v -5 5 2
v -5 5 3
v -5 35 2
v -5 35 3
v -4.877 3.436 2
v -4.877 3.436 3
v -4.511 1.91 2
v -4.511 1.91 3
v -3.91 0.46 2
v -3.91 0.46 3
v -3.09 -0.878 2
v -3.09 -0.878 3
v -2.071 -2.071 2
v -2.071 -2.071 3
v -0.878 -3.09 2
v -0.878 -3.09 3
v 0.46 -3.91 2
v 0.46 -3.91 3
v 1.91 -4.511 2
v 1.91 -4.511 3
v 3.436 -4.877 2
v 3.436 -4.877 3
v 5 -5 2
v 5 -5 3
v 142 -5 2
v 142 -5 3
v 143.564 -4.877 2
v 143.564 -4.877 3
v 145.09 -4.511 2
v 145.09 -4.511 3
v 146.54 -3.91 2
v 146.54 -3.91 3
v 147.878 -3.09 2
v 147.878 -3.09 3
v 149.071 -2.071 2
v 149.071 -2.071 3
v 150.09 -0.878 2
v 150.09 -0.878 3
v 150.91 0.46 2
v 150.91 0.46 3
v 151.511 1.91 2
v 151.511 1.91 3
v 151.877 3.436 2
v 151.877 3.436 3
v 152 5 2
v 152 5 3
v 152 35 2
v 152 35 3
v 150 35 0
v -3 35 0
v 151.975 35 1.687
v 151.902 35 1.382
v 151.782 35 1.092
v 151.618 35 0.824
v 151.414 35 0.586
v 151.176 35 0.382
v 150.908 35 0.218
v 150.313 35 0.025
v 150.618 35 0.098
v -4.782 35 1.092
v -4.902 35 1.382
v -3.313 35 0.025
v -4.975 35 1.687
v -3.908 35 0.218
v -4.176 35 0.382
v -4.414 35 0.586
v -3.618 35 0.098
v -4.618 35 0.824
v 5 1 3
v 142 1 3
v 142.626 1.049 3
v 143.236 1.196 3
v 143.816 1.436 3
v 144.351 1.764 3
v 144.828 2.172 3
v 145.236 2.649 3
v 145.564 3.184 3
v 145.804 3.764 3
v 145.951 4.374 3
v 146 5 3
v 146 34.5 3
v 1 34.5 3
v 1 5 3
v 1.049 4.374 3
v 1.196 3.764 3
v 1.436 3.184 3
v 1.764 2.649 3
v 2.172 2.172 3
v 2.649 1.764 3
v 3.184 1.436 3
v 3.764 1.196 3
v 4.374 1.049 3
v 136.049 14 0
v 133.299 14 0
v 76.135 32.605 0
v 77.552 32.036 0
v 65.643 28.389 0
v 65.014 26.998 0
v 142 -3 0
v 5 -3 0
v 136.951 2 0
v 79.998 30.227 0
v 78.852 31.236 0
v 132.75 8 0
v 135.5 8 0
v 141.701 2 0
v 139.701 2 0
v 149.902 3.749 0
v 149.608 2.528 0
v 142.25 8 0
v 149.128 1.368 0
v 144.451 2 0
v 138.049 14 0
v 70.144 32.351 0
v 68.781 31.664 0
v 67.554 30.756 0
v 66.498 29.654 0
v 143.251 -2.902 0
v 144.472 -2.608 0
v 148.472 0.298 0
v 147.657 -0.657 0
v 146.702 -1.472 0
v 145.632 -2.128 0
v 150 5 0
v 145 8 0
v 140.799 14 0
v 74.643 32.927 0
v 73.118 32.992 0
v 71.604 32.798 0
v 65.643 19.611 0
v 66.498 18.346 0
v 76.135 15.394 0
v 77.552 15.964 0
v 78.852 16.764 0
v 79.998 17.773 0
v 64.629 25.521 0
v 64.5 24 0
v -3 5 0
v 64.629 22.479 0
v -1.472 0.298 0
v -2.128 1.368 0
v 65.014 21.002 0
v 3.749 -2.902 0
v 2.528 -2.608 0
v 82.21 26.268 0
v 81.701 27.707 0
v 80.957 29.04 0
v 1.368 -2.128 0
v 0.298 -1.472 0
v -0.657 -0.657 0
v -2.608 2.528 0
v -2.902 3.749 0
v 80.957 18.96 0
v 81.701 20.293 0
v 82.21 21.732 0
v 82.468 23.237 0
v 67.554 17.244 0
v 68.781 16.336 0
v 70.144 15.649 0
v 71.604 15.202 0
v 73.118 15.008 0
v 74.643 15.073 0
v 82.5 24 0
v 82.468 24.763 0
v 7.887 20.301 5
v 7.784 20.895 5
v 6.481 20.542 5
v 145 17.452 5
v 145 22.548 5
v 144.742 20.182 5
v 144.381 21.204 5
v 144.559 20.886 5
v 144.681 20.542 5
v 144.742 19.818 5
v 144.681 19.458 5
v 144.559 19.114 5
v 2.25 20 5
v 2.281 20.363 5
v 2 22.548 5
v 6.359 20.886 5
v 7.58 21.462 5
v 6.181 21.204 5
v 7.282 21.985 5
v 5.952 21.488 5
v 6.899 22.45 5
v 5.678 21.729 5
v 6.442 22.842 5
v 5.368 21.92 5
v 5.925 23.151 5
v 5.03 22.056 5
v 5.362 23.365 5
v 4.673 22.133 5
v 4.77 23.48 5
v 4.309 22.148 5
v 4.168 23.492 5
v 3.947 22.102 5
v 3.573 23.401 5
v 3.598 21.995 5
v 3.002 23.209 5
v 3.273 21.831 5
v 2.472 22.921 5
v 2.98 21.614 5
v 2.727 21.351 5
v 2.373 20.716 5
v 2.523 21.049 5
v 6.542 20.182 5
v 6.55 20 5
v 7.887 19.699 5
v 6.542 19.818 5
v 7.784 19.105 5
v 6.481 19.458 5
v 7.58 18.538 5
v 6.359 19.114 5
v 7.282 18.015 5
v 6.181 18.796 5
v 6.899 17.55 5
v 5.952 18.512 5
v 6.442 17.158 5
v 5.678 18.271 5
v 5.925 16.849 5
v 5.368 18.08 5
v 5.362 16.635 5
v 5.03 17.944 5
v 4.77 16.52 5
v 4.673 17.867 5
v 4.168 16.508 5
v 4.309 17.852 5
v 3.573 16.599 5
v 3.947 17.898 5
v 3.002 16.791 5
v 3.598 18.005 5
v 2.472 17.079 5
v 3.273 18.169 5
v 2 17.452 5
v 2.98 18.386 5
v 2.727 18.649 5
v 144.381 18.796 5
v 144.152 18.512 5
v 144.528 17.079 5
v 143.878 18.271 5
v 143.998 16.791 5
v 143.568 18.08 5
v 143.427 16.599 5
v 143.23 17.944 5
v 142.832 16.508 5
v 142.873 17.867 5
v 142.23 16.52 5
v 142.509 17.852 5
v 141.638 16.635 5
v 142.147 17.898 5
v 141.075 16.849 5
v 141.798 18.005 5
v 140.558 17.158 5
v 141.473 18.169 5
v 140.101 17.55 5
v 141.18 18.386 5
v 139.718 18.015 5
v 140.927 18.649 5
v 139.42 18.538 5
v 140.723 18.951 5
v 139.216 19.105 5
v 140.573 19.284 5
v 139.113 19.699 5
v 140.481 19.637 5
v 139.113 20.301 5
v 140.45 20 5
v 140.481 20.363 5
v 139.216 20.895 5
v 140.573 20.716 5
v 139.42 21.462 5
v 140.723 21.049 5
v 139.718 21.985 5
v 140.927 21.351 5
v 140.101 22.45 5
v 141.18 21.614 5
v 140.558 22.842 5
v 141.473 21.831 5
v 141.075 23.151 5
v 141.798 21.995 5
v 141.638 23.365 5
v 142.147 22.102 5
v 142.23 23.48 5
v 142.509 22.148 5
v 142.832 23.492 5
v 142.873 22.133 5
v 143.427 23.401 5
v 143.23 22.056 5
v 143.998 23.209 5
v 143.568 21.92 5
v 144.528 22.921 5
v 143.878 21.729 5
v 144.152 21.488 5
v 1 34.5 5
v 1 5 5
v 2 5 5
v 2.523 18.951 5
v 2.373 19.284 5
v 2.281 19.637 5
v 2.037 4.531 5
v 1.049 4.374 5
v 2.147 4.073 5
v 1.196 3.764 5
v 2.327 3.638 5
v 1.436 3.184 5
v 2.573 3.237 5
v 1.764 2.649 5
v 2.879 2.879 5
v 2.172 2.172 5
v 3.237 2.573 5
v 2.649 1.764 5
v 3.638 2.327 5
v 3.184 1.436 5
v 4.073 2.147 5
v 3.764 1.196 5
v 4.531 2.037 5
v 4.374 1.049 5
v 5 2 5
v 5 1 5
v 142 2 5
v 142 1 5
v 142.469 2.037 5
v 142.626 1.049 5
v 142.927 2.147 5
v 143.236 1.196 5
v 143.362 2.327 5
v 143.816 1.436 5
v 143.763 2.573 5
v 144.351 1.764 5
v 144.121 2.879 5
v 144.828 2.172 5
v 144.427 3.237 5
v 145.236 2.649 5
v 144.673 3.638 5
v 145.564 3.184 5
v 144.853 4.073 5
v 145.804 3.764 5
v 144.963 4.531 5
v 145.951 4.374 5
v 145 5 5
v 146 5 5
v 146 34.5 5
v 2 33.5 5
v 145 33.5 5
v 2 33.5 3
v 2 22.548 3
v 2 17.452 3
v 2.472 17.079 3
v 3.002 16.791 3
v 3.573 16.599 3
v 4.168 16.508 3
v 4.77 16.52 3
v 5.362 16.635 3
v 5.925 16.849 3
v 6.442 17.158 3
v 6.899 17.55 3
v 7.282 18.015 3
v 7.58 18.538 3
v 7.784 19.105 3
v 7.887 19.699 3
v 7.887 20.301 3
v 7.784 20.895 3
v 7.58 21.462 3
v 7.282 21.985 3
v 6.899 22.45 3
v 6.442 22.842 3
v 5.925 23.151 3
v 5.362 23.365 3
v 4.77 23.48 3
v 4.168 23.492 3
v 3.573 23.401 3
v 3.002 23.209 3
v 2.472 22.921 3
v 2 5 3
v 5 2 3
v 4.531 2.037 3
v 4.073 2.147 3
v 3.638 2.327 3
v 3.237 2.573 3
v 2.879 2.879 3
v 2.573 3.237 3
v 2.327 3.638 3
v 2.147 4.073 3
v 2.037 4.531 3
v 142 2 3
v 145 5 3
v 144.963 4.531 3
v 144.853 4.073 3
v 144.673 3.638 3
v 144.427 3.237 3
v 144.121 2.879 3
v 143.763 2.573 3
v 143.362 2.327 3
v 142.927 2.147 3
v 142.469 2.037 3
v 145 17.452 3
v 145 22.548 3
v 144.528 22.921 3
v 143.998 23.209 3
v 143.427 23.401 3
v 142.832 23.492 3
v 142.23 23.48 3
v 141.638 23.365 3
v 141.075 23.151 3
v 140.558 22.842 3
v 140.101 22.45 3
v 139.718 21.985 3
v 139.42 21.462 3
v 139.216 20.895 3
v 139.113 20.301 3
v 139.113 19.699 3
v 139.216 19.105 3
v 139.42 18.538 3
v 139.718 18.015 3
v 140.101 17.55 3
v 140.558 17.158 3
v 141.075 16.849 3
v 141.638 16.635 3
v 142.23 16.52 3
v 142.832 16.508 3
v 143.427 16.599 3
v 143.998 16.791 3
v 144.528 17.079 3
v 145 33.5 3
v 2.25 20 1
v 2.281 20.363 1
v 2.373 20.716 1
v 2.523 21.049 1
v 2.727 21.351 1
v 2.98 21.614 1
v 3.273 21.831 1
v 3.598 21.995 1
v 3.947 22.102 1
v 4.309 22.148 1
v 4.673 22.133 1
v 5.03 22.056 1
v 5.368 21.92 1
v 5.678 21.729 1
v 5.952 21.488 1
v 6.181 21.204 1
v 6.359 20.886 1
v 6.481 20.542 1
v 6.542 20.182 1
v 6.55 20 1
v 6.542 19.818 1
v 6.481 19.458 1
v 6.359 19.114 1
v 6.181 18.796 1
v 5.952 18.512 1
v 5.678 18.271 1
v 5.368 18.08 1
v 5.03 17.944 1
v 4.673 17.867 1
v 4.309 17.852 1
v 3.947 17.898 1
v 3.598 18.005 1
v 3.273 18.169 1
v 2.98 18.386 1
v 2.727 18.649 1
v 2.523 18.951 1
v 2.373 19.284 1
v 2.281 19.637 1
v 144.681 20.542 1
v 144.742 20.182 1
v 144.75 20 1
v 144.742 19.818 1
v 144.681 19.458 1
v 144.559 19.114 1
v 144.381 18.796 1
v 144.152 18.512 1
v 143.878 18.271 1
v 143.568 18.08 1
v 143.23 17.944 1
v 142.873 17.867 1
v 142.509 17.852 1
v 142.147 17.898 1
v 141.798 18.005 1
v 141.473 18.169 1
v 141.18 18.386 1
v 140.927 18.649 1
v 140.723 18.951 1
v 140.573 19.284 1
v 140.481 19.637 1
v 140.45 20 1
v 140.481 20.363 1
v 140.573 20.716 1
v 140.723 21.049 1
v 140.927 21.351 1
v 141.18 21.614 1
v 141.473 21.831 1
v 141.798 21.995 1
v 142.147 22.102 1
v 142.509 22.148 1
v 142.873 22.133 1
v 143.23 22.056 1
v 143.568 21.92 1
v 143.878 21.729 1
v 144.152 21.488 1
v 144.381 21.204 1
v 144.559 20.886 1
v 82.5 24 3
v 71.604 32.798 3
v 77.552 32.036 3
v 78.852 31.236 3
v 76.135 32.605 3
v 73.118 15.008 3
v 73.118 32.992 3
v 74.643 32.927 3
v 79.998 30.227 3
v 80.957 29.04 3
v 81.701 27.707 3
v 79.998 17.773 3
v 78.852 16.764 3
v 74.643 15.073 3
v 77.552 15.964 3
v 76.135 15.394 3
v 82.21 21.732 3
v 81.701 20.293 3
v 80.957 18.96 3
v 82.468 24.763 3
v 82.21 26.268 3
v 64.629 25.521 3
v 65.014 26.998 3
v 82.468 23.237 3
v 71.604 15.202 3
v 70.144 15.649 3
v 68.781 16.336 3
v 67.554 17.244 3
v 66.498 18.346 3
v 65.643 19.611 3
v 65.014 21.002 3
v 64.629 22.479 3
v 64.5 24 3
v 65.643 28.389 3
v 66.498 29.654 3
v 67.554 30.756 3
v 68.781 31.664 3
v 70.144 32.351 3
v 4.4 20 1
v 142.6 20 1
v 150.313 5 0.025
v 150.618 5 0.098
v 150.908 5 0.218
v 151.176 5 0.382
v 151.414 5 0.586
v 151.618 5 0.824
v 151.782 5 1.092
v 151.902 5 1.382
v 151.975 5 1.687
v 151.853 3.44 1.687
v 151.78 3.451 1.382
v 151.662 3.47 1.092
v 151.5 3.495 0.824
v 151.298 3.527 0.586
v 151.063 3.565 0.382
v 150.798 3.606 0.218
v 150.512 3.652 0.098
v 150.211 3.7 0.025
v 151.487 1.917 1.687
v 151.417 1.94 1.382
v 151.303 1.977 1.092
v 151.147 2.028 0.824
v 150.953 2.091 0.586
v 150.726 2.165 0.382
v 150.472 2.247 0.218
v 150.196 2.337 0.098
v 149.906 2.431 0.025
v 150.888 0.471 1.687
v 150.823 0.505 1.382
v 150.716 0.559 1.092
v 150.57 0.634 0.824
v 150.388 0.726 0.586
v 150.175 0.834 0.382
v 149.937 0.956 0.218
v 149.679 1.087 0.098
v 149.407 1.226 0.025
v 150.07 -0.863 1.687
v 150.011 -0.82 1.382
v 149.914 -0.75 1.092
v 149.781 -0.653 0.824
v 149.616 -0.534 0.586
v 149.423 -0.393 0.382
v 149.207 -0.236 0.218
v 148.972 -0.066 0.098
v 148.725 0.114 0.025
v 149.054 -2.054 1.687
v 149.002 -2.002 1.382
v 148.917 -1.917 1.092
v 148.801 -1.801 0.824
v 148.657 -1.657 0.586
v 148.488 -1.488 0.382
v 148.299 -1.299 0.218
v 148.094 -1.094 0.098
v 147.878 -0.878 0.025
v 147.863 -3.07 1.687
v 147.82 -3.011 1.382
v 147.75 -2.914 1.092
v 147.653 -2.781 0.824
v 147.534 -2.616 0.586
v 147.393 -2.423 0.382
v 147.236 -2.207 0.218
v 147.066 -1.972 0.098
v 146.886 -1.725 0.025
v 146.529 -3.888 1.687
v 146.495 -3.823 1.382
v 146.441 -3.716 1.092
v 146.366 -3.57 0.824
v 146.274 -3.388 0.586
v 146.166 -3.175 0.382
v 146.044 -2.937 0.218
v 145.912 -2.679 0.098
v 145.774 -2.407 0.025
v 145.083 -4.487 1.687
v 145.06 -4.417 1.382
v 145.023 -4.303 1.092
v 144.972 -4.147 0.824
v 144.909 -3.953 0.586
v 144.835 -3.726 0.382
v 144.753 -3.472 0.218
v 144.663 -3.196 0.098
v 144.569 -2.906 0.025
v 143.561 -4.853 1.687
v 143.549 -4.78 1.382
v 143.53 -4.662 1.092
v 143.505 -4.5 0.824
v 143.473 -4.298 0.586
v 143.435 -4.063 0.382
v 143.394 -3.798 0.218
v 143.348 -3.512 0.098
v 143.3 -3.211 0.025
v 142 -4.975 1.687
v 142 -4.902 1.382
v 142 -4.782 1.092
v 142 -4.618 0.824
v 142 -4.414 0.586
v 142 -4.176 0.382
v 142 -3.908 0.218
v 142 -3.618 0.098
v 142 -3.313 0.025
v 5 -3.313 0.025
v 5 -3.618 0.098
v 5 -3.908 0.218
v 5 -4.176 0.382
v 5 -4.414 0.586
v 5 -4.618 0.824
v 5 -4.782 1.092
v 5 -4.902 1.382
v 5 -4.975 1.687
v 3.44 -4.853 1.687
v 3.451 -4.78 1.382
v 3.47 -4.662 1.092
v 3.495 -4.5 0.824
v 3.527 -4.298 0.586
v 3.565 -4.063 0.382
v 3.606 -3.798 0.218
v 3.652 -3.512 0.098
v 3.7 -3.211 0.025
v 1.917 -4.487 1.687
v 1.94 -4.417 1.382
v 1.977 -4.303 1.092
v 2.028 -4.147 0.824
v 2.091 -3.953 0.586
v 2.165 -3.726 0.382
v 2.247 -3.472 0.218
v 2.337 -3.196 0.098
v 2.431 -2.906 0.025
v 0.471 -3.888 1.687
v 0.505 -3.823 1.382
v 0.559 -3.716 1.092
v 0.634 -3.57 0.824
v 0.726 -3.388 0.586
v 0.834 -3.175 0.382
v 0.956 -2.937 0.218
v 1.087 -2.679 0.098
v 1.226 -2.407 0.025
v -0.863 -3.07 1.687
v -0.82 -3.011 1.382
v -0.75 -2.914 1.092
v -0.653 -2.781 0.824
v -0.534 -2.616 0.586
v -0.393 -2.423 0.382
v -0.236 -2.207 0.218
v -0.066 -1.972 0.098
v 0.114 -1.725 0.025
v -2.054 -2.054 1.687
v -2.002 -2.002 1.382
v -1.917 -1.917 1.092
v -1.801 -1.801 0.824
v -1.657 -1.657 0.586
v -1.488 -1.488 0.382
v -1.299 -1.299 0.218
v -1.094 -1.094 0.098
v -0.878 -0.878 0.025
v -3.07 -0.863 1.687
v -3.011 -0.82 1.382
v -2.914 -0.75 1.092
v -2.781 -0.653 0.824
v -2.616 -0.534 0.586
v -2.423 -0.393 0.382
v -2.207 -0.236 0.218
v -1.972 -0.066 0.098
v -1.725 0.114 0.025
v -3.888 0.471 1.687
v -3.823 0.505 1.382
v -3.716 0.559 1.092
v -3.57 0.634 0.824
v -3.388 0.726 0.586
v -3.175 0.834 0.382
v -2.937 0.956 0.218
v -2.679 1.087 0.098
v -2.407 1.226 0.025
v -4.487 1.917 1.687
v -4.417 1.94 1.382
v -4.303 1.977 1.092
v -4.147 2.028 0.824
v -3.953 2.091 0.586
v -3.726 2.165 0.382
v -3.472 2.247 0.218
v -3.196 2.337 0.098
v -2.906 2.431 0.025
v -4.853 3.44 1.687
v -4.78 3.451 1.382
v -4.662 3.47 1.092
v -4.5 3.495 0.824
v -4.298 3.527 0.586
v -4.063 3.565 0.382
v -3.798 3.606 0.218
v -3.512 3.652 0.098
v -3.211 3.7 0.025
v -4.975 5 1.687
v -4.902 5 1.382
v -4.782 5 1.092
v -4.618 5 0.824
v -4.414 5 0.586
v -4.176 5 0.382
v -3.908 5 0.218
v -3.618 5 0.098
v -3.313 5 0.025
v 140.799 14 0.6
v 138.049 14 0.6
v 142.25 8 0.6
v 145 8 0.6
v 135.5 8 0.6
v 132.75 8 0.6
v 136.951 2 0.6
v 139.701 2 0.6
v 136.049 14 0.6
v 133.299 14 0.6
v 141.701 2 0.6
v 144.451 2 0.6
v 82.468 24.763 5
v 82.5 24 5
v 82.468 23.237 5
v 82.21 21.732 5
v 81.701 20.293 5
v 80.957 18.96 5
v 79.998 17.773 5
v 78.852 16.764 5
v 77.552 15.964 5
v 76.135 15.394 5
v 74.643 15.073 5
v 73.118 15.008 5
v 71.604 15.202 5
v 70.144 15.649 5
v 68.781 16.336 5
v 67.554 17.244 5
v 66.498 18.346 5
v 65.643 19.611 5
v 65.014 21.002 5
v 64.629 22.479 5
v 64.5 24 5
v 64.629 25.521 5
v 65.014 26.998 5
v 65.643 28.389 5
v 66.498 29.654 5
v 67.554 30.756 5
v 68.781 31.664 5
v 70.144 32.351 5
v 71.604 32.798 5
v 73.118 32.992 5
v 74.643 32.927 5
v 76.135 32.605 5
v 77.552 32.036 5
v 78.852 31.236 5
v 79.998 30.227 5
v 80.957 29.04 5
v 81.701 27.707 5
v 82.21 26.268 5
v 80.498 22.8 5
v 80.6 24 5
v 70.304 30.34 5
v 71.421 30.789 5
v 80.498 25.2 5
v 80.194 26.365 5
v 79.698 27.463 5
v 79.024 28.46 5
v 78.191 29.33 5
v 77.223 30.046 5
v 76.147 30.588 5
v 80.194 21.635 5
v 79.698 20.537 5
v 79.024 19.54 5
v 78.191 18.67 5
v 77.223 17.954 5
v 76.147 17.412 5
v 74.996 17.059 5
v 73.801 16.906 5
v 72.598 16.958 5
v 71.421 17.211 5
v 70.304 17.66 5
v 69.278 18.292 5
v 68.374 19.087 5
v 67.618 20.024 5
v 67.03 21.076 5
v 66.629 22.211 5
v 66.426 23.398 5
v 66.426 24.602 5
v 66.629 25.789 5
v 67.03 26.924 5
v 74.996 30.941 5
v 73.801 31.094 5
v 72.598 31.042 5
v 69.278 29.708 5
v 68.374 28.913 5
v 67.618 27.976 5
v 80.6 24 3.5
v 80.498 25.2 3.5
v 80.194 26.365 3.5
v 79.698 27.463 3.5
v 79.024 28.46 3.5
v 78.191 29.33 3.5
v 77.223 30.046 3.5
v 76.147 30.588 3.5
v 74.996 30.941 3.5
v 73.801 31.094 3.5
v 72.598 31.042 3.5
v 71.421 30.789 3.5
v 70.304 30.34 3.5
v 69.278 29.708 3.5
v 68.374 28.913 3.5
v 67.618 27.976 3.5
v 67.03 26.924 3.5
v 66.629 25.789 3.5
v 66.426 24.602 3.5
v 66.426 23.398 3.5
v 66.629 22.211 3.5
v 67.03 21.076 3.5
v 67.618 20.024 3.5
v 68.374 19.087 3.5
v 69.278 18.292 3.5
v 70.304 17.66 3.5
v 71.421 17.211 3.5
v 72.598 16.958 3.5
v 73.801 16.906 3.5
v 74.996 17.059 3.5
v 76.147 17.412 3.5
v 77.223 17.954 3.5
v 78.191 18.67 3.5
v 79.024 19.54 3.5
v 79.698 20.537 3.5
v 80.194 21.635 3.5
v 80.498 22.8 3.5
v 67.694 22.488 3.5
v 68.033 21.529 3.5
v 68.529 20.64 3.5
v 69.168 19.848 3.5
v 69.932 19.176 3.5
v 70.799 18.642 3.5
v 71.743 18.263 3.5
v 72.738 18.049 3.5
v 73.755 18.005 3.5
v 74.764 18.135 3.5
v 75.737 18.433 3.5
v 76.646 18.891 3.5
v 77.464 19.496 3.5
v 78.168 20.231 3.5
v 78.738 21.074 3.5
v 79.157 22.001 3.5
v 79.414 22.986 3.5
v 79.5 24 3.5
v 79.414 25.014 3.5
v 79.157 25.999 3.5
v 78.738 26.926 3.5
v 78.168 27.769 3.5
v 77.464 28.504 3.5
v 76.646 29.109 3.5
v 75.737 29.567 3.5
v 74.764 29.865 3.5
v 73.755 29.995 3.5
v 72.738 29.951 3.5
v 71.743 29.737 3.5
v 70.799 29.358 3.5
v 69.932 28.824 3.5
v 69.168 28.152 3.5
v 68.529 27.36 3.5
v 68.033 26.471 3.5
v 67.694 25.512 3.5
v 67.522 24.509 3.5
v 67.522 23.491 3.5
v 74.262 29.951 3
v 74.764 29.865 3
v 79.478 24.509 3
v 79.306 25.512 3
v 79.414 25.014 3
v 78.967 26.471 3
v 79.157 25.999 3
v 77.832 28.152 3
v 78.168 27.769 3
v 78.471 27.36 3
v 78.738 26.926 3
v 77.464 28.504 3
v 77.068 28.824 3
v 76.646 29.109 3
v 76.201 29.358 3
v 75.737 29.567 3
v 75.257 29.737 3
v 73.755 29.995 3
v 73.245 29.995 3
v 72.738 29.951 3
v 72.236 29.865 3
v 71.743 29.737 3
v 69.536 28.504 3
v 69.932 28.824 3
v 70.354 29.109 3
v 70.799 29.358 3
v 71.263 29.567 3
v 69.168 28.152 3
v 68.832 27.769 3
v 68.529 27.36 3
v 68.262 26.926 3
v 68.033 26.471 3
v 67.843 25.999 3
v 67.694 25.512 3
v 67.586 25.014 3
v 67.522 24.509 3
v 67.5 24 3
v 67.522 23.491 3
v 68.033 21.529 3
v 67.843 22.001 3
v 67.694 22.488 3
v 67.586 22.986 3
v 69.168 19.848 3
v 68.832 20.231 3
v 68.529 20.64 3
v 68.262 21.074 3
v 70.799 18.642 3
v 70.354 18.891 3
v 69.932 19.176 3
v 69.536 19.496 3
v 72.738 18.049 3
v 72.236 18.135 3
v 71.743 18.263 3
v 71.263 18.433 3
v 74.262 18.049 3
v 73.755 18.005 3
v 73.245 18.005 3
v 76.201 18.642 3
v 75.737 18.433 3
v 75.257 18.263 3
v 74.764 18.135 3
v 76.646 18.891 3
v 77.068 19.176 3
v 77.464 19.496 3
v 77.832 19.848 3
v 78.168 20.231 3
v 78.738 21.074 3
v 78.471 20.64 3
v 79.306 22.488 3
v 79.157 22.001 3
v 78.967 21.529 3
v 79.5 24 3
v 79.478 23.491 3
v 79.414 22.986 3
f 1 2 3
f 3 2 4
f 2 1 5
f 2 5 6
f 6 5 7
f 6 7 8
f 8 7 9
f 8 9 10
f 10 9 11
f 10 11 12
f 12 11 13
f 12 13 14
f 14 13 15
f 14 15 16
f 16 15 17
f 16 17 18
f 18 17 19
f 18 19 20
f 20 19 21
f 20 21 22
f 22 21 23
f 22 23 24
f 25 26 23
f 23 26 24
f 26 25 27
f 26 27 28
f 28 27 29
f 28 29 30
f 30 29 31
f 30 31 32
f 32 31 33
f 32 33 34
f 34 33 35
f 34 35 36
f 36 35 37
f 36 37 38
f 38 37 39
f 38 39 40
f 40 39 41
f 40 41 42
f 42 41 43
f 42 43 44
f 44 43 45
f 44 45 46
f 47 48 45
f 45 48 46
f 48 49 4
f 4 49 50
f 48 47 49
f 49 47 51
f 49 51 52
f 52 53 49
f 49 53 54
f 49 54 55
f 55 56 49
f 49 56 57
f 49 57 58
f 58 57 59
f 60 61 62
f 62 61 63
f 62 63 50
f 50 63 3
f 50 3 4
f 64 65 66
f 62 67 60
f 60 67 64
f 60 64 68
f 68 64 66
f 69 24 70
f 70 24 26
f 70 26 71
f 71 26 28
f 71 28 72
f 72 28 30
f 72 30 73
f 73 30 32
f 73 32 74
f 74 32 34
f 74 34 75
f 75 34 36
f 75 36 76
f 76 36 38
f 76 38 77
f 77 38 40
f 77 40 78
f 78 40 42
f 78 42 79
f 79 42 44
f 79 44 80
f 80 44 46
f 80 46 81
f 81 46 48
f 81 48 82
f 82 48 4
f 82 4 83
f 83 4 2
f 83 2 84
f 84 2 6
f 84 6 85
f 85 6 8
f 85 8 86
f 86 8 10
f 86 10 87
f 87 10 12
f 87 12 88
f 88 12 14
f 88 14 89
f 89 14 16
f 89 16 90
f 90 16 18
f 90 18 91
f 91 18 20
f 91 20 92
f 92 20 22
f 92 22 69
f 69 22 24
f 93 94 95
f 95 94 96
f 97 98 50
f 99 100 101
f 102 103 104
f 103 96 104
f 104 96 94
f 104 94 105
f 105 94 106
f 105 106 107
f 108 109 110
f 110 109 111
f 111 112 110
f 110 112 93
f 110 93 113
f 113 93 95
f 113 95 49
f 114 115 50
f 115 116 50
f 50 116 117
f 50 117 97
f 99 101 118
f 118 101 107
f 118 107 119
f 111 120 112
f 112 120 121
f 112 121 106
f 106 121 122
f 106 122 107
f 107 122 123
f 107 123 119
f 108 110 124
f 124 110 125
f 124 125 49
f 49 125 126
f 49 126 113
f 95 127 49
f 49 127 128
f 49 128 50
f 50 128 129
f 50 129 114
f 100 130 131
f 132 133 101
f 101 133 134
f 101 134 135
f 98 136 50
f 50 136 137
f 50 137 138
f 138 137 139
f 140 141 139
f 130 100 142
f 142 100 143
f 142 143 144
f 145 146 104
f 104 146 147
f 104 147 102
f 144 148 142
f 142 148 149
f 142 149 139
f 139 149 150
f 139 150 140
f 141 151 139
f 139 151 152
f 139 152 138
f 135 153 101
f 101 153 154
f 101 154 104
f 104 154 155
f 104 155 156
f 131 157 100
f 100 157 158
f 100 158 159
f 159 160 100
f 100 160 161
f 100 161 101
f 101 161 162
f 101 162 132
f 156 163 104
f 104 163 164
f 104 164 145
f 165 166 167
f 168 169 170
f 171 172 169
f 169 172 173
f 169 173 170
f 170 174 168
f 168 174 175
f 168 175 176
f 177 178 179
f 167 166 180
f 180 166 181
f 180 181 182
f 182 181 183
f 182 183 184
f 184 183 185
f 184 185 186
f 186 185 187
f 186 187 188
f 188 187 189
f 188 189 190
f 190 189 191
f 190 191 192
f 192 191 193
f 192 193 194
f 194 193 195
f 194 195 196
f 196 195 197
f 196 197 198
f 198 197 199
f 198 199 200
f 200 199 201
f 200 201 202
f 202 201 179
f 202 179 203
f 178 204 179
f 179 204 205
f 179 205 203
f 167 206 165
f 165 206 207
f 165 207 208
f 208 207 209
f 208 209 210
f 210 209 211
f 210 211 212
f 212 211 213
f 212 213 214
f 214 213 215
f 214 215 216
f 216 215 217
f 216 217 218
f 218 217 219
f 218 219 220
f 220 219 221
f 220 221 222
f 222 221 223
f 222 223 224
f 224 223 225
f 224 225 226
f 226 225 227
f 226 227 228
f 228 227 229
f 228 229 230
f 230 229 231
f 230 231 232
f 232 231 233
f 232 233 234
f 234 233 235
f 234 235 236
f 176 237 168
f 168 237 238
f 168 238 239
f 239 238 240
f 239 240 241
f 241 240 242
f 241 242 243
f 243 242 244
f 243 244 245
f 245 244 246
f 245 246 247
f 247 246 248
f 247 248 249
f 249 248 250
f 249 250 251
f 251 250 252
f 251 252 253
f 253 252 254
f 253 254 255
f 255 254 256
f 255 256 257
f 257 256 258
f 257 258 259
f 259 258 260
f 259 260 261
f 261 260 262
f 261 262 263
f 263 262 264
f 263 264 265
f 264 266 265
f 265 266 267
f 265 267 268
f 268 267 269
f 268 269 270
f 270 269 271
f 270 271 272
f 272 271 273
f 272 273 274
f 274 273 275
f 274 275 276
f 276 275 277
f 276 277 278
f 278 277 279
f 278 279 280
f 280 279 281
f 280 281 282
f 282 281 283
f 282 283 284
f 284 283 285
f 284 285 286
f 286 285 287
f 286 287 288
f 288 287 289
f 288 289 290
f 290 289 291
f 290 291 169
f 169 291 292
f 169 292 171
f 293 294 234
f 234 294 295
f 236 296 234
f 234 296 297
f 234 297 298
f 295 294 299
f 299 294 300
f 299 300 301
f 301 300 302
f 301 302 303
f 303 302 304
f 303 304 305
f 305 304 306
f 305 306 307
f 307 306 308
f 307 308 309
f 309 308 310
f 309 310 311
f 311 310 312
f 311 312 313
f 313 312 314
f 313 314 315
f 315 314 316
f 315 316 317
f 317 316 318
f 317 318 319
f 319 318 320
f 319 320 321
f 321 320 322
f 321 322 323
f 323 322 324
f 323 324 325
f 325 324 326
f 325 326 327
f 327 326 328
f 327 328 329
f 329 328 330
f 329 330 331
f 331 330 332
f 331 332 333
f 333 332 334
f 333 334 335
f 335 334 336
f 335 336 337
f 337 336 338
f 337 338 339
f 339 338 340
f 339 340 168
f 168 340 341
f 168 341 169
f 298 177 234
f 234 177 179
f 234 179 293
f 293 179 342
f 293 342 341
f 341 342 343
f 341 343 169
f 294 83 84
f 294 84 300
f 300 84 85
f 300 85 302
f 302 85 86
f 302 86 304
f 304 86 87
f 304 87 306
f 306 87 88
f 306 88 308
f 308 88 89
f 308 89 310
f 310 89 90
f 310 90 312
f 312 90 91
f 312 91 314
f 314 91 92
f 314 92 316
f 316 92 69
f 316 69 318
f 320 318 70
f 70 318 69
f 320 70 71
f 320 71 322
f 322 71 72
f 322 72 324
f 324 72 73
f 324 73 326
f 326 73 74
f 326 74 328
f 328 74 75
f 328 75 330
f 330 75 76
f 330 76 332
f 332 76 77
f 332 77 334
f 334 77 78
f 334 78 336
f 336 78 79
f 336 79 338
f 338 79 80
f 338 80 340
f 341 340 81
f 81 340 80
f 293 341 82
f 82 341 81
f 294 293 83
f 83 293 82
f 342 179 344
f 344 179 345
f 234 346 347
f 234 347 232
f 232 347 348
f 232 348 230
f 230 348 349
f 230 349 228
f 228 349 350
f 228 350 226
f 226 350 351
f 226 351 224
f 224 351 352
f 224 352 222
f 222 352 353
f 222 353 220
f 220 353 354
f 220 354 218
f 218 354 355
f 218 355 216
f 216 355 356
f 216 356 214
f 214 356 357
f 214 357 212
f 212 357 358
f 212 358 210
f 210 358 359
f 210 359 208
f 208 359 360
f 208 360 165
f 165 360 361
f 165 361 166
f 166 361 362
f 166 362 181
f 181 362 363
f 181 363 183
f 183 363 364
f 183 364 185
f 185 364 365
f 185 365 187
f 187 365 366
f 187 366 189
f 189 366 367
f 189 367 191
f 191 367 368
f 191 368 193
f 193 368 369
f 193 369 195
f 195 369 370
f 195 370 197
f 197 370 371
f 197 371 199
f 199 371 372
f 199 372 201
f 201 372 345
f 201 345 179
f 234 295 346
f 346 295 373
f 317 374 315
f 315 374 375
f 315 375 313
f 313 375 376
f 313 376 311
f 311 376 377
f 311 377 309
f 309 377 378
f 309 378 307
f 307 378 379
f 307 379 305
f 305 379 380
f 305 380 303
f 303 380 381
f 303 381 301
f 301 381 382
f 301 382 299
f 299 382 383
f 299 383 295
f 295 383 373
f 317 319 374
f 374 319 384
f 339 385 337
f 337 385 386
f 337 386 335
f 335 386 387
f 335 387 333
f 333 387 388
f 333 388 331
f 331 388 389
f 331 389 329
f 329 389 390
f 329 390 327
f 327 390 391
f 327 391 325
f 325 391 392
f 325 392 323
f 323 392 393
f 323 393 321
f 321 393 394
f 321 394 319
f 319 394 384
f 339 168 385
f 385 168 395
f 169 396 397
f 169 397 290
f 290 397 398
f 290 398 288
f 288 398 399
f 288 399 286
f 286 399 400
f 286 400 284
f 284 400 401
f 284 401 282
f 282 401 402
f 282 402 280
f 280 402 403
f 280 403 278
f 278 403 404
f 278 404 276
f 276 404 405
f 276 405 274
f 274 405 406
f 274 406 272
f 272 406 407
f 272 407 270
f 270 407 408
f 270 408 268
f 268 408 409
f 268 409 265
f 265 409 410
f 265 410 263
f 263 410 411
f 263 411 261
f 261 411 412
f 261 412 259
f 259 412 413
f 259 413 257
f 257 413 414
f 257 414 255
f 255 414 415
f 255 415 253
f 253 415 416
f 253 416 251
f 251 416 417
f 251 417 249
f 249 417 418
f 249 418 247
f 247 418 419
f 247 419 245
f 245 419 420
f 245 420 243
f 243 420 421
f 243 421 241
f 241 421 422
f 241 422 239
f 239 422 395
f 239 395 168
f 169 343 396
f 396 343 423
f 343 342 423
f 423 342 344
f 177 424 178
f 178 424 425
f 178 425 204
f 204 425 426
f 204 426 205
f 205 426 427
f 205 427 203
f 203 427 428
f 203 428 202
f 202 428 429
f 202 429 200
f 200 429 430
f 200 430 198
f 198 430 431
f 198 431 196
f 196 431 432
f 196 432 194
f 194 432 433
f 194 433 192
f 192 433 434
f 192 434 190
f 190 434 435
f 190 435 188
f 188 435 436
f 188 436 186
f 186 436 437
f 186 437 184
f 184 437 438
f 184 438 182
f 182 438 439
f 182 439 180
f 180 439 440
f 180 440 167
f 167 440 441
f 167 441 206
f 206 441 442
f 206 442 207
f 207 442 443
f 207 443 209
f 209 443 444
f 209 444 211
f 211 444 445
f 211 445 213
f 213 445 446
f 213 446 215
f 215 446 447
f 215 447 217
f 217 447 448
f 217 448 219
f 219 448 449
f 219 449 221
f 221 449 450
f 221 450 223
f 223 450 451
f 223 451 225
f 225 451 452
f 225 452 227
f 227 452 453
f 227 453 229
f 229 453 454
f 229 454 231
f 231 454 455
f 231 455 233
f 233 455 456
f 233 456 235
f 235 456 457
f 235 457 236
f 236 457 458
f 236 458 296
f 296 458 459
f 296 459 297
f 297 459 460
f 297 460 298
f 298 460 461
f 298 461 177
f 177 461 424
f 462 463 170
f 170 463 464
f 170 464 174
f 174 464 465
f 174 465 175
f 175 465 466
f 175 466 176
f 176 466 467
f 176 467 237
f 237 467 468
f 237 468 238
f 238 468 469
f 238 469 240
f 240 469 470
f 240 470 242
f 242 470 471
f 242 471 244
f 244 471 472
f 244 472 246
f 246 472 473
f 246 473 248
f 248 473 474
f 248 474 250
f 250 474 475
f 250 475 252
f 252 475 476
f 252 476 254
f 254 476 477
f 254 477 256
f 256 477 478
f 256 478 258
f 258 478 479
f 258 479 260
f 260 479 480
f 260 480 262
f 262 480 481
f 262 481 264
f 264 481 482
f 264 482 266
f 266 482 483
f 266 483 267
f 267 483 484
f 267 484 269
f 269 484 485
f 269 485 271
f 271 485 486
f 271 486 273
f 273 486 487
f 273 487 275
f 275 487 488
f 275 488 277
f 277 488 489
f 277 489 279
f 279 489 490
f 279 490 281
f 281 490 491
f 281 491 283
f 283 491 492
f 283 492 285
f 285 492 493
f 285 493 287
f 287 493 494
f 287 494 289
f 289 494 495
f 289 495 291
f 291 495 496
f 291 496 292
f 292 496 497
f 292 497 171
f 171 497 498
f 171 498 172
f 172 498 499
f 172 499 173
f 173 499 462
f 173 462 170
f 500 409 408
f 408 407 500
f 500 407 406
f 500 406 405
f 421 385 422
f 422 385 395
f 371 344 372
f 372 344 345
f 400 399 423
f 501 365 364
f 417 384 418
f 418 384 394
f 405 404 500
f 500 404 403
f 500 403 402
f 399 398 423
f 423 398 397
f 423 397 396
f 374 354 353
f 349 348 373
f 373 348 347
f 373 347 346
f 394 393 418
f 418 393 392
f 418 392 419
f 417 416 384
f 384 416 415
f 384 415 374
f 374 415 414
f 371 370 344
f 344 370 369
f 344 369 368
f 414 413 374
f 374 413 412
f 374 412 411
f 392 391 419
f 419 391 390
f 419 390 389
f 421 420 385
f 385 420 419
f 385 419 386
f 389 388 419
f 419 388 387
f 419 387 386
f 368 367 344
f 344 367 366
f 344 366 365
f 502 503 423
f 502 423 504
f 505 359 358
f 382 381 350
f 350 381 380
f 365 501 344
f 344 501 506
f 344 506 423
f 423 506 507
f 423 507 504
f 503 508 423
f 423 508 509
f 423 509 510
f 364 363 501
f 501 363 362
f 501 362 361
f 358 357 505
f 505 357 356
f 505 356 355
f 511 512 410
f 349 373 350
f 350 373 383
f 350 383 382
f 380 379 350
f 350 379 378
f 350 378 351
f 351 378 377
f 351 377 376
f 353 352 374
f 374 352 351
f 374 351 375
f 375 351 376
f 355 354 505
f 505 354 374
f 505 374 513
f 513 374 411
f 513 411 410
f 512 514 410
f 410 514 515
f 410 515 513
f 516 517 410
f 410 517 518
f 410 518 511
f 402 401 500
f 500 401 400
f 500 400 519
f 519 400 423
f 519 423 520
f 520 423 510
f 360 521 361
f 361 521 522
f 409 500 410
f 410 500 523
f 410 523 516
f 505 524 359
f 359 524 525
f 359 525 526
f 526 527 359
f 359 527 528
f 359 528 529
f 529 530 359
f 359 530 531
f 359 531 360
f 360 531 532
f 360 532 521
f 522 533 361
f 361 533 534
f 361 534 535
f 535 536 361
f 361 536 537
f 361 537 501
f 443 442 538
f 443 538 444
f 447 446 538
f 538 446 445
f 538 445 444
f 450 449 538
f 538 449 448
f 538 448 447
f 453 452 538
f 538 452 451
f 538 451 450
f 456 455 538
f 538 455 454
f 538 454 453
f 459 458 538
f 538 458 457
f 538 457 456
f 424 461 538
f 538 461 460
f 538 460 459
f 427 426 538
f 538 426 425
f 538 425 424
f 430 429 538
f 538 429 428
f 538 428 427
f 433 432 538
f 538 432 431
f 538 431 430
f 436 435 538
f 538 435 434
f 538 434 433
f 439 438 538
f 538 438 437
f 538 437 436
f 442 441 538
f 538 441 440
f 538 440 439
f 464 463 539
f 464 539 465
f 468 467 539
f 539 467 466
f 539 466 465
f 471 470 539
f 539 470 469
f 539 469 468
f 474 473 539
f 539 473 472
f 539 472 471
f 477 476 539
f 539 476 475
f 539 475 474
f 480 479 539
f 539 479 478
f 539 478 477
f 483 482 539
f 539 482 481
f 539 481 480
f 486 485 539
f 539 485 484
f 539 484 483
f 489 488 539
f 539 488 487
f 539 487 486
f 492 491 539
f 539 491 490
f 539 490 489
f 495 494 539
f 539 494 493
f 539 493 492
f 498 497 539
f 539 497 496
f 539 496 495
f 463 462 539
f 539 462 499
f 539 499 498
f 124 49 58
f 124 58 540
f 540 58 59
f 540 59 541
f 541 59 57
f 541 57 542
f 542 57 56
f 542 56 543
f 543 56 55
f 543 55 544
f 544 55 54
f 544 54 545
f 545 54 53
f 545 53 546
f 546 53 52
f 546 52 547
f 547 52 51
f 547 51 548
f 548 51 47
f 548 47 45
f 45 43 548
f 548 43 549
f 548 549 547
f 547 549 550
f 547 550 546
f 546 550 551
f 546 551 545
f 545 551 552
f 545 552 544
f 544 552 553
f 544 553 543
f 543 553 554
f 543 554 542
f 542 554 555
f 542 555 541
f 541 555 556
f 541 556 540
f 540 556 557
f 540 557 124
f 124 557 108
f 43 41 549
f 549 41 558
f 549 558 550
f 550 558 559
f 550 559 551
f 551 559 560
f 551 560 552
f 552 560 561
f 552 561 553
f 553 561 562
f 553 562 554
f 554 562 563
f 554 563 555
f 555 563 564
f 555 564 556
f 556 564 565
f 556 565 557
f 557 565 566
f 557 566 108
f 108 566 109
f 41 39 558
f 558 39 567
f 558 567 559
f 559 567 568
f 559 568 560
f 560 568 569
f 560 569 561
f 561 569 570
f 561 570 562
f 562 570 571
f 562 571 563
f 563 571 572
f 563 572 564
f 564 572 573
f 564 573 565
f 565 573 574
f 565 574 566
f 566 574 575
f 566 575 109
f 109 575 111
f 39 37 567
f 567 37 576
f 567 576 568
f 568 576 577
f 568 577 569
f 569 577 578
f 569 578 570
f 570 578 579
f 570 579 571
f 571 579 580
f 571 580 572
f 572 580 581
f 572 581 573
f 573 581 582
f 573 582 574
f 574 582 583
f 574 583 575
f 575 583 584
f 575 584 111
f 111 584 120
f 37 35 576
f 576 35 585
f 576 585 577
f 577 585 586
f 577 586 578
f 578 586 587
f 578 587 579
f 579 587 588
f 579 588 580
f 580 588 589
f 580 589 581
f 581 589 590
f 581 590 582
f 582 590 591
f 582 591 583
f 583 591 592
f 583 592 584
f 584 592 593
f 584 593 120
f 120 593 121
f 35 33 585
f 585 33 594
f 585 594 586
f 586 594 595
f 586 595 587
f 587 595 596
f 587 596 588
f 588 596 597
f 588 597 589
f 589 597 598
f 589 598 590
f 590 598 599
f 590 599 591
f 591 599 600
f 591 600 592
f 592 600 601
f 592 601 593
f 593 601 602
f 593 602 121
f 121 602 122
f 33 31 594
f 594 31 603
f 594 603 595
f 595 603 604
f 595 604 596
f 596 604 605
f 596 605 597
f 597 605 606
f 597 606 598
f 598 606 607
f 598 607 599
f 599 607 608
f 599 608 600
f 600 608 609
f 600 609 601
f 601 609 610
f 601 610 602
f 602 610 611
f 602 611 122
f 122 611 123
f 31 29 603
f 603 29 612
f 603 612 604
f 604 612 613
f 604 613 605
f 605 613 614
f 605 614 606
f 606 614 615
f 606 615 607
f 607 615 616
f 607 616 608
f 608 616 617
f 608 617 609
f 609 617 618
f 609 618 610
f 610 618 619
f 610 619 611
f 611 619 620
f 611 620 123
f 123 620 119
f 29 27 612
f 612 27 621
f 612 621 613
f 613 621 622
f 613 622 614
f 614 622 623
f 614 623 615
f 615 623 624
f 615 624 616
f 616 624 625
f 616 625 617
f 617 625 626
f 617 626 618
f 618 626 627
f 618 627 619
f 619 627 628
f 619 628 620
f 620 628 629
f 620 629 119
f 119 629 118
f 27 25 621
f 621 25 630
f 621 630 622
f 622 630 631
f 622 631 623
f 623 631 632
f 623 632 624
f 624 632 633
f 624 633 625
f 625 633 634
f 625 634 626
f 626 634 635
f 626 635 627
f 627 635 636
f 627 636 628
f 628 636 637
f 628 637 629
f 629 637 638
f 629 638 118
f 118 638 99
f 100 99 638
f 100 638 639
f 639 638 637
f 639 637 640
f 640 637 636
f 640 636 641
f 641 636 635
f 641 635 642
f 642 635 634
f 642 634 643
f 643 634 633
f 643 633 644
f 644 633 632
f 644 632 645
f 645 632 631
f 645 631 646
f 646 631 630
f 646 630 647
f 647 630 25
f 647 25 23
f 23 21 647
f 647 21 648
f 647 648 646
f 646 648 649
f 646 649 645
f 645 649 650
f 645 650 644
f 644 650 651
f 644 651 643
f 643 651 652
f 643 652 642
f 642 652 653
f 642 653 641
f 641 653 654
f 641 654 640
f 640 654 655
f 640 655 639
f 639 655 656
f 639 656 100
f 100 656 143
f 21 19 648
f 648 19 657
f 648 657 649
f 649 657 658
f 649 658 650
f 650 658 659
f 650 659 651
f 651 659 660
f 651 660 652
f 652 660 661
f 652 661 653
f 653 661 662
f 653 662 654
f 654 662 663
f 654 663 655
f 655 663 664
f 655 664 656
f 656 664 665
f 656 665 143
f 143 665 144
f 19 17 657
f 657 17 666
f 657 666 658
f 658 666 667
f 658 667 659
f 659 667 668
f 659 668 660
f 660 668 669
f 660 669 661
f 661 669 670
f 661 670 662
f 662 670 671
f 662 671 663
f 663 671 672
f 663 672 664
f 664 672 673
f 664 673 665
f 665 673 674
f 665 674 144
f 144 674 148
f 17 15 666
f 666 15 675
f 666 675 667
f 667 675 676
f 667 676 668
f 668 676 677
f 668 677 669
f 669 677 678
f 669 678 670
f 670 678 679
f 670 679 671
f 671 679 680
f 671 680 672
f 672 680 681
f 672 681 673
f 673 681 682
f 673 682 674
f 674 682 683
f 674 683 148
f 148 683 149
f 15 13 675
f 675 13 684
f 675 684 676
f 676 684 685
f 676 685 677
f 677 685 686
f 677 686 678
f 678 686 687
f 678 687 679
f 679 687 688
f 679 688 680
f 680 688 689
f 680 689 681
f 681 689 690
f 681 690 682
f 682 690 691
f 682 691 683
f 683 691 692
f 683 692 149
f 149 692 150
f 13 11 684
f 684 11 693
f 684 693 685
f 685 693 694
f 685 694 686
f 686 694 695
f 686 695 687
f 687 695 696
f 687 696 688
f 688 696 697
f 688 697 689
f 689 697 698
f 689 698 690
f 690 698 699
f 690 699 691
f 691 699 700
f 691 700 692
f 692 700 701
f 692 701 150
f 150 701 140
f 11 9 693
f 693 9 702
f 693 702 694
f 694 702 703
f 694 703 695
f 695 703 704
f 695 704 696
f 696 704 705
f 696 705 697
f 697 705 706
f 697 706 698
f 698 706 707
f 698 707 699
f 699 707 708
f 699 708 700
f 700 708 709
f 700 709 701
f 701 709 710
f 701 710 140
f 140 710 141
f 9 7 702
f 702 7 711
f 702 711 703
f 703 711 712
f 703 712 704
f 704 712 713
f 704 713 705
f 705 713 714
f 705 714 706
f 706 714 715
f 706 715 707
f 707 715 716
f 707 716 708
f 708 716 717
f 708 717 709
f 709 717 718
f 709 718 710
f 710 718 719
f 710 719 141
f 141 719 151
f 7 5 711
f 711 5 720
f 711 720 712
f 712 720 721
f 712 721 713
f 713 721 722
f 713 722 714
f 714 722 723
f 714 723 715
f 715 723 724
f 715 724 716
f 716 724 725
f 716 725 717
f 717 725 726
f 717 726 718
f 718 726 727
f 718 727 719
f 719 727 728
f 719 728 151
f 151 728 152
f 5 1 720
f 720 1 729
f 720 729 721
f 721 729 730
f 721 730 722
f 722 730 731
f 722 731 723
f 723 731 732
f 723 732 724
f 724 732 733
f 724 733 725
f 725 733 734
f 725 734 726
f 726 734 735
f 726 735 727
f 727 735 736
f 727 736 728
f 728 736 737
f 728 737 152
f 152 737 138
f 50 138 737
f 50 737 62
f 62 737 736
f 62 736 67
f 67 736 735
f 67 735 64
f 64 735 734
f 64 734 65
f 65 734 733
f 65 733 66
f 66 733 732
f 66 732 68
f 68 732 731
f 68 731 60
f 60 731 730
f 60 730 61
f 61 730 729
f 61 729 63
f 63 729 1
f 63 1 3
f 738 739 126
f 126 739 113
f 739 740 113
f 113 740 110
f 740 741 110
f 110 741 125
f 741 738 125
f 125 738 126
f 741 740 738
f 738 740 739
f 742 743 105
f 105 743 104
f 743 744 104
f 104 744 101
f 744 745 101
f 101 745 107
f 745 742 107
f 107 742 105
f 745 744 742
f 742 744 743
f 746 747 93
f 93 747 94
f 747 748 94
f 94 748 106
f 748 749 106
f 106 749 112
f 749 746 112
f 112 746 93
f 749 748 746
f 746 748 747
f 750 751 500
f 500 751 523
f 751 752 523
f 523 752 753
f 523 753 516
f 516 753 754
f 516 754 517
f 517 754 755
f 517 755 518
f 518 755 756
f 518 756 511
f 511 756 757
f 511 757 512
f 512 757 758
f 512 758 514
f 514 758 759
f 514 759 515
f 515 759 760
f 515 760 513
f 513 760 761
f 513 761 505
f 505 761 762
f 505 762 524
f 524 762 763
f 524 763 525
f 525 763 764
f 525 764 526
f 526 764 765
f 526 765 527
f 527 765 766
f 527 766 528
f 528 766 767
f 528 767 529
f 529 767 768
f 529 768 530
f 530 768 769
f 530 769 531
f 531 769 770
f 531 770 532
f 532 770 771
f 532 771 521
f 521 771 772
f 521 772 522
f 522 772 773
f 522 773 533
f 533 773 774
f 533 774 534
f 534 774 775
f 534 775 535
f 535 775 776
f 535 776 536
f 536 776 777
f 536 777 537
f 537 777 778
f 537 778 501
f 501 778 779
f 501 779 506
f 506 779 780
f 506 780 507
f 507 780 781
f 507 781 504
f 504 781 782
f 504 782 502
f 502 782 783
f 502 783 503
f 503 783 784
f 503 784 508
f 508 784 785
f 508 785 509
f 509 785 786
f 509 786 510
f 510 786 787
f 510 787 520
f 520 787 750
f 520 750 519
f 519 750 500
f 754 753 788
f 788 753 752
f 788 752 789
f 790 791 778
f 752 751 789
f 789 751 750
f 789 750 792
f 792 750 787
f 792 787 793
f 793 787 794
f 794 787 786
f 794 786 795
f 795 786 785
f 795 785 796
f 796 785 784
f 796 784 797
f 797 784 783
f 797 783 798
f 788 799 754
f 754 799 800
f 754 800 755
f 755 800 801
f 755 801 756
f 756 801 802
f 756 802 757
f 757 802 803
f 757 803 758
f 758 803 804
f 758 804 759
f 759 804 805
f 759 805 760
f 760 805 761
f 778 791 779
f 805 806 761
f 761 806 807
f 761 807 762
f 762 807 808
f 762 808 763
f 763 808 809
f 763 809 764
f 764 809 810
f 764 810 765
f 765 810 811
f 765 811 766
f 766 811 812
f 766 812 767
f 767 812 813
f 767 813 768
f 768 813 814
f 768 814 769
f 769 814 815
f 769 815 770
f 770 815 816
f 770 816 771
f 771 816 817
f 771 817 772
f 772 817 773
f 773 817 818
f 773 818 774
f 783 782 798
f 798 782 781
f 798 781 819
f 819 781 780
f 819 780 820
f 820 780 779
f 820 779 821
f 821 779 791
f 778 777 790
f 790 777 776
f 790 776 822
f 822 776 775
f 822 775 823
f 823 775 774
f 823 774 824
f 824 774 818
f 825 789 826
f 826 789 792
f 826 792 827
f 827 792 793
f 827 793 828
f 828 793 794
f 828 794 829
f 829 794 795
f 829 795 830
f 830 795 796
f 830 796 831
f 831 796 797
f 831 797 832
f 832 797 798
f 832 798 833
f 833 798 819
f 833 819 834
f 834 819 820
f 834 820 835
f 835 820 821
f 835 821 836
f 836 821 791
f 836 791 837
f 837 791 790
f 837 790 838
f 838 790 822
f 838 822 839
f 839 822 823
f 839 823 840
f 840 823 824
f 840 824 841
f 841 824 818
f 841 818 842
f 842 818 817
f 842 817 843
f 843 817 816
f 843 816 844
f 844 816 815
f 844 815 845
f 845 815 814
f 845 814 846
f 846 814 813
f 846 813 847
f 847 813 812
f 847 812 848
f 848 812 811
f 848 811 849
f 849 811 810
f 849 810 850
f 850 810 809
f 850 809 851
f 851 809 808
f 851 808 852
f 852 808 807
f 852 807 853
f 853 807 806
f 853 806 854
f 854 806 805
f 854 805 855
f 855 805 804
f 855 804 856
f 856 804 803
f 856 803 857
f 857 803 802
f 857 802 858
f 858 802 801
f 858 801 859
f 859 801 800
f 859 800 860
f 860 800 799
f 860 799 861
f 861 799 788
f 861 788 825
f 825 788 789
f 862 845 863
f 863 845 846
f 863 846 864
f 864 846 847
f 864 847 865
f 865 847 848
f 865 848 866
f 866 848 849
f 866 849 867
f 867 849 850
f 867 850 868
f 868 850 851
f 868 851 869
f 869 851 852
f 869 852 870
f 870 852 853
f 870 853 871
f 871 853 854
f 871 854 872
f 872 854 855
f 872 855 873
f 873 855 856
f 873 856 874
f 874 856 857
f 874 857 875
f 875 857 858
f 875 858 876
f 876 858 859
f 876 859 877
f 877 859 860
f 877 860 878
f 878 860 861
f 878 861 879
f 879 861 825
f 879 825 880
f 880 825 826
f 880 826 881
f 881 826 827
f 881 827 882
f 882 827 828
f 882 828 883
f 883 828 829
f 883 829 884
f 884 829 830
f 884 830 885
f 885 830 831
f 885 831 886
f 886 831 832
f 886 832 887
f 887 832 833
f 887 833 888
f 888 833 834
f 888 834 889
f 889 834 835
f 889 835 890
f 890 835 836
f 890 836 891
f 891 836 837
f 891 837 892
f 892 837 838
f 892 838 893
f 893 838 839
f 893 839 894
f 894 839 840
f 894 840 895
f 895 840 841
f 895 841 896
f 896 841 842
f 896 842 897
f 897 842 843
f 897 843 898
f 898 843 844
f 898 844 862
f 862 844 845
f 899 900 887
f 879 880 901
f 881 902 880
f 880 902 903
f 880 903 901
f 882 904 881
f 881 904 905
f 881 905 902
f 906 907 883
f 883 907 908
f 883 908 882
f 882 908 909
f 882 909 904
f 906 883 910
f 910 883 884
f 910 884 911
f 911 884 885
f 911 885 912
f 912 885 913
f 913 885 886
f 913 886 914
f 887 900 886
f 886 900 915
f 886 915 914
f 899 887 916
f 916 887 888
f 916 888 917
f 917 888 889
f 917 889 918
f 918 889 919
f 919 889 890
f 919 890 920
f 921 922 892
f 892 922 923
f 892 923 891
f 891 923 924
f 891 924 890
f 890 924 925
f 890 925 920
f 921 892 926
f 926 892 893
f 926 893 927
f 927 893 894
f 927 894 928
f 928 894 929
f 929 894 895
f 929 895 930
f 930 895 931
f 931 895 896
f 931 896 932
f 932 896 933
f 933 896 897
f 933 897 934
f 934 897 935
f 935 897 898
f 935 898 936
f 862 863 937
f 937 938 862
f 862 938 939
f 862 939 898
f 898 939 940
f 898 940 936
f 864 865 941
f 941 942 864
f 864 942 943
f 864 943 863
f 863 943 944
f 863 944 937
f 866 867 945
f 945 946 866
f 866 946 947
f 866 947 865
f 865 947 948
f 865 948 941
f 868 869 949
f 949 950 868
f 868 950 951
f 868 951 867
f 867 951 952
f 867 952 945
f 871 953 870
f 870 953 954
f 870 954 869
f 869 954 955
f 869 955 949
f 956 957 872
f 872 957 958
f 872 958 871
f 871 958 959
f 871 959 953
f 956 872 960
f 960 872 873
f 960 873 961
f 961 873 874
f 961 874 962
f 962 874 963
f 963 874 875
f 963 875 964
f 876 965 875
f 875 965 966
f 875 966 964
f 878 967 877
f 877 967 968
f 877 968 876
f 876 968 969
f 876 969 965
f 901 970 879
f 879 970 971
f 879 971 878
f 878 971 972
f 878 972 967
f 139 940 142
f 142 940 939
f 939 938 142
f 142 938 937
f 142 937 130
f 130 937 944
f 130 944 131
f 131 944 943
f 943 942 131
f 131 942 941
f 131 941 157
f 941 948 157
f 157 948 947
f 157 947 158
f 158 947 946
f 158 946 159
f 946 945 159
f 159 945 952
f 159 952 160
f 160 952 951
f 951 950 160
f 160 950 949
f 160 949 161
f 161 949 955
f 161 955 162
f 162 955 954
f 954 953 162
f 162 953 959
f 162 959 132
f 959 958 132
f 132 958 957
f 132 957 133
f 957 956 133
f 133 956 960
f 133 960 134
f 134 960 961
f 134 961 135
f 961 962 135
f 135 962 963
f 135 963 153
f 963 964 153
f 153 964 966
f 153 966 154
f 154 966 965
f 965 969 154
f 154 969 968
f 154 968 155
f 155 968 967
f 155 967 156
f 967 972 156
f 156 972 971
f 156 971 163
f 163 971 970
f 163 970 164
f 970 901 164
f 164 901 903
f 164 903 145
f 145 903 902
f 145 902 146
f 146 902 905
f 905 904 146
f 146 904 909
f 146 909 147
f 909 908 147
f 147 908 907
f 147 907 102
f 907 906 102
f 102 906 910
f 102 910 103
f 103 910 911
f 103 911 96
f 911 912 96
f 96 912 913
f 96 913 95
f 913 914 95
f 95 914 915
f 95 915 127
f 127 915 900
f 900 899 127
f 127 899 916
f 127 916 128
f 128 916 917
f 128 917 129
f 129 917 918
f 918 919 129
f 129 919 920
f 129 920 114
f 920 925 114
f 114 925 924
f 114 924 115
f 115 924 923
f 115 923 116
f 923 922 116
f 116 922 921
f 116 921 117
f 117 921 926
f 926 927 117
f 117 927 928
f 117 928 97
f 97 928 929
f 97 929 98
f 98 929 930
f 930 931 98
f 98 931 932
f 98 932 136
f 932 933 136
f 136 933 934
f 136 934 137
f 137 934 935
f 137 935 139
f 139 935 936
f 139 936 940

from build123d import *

# Parameters (mm, degrees)
BOSS_BASE_DEPTH    = 3
SKETCH3_R          = 2.15
BOSS_FIT_DEPTH     = 2
CUT_SCREWS_START   = -2
SKETCH4_R          = 2.15
CUT_SCREWS_DEPTH   = 2
FILLET1_R          = 2
CUT_VORON_DEPTH    = 0.6
SKETCH8_R          = 9
BOSS_BEARING_DEPTH = 2
SKETCH12_R         = 7.1
CUT_BEARING1_DEPTH = 1.5
SKETCH11_R         = 6
CUT_BEARING2_DEPTH = 157.057681644
CHAMFER2_SIZE      = 3


with BuildPart() as part:
    # Sketch2 → Boss-Base (new body)
    with BuildSketch(Plane.XY):
        with BuildLine():
            Line((-5, 35), (152, 35))
            Line((152, 35), (152, 5))
            ThreePointArc((152, 5), (149.071067812, -2.071067812), (142, -5))
            Line((142, -5), (5, -5))
            ThreePointArc((5, -5), (-2.071067812, -2.071067812), (-5, 5))
            Line((-5, 5), (-5, 35))
        make_face()
    extrude(amount=BOSS_BASE_DEPTH)

    # Sketch3 → Boss-Fit (add)
    with BuildSketch(Plane.XY.offset(3)):
        with BuildLine():
            Line((1, 5), (1, 34.5))
            Line((1, 34.5), (146, 34.5))
            Line((146, 34.5), (146, 5))
            ThreePointArc((146, 5), (144.828427125, 2.171572875), (142, 1))
            Line((142, 1), (5, 1))
            ThreePointArc((5, 1), (2.171572875, 2.171572875), (1, 5))
        make_face()
        with Locations((4.4, 20)):
            Circle(SKETCH3_R, mode=Mode.SUBTRACT)
        with Locations(Location((142.6, 20, 0), (0, 0, 180))):
            Circle(SKETCH3_R, mode=Mode.SUBTRACT)
        with BuildLine():
            Line((2, 33.5), (145, 33.5))
            Line((145, 33.5), (145, 22.547547841))
            ThreePointArc((145, 22.547547841), (139.1, 20), (145, 17.452452159))
            Line((145, 17.452452159), (145, 5))
            ThreePointArc((145, 5), (144.121320344, 2.878679656), (142, 2))
            Line((142, 2), (5, 2))
            ThreePointArc((5, 2), (2.878679656, 2.878679656), (2, 5))
            Line((2, 5), (2, 17.452452159))
            ThreePointArc((2, 17.452452159), (7.9, 20), (2, 22.547547841))
            Line((2, 22.547547841), (2, 33.5))
        make_face(mode=Mode.SUBTRACT)
    extrude(amount=BOSS_FIT_DEPTH)

    # Sketch4 → Cut-Screws (cut)
    with BuildSketch(Plane.XY.offset(3).offset(CUT_SCREWS_START)):
        with Locations((4.4, 20)):
            Circle(SKETCH4_R)
        with Locations(Location((142.6, 20, 0), (0, 0, 180))):
            Circle(SKETCH4_R)
    extrude(amount=CUT_SCREWS_DEPTH, mode=Mode.SUBTRACT)

    # Fillet1
    fillet1_edges = [part.edges().sort_by_distance(p)[0] for p in [
        (152, 20, 0),
        (149.071067812, -2.071067812, 0),
        (73.5, -5, 0),
        (-2.071067812, -2.071067812, 0),
        (-5, 20, 0),
    ]]
    fillet(fillet1_edges, radius=FILLET1_R)

    # Sketch10 → Cut-Voron (cut)
    with BuildSketch(Plane(origin=(0, 0, 0), x_dir=(-1, 0, 0), z_dir=(0, 0, -1))):
        Polygon((-140.798754771, 14), (-145, 8), (-142.25, 8), (-138.048754771, 14), align=None)
        Polygon((-136.048754771, 14), (-144.451245229, 2), (-141.701245229, 2), (-133.298754771, 14), align=None)
        Polygon((-135.5, 8), (-139.701245229, 2), (-136.951245229, 2), (-132.75, 8), align=None)
    extrude(amount=-CUT_VORON_DEPTH, mode=Mode.SUBTRACT)

    # Sketch8 → Boss-Bearing (add)
    with BuildSketch(Plane.XY.offset(3)):
        with Locations((73.5, 24)):
            Circle(SKETCH8_R)
    extrude(amount=BOSS_BEARING_DEPTH)

    # Sketch12 → Cut-Bearing1 (cut)
    with BuildSketch(Plane.XY.offset(5)):
        with Locations((73.5, 24)):
            Circle(SKETCH12_R)
    extrude(amount=-CUT_BEARING1_DEPTH, mode=Mode.SUBTRACT)

    # Sketch11 → Cut-Bearing2 (cut, through all)
    with BuildSketch(Plane.XY.offset(5)):
        with Locations((73.5, 24)):
            Circle(SKETCH11_R)
    extrude(amount=-CUT_BEARING2_DEPTH, mode=Mode.SUBTRACT)

    # Chamfer2
    chamfer2_edges = [part.edges().sort_by_distance(p)[0] for p in [
        (67.5, 24, 0),
    ]]
    chamfer(chamfer2_edges, length=CHAMFER2_SIZE)


solid = part.part
